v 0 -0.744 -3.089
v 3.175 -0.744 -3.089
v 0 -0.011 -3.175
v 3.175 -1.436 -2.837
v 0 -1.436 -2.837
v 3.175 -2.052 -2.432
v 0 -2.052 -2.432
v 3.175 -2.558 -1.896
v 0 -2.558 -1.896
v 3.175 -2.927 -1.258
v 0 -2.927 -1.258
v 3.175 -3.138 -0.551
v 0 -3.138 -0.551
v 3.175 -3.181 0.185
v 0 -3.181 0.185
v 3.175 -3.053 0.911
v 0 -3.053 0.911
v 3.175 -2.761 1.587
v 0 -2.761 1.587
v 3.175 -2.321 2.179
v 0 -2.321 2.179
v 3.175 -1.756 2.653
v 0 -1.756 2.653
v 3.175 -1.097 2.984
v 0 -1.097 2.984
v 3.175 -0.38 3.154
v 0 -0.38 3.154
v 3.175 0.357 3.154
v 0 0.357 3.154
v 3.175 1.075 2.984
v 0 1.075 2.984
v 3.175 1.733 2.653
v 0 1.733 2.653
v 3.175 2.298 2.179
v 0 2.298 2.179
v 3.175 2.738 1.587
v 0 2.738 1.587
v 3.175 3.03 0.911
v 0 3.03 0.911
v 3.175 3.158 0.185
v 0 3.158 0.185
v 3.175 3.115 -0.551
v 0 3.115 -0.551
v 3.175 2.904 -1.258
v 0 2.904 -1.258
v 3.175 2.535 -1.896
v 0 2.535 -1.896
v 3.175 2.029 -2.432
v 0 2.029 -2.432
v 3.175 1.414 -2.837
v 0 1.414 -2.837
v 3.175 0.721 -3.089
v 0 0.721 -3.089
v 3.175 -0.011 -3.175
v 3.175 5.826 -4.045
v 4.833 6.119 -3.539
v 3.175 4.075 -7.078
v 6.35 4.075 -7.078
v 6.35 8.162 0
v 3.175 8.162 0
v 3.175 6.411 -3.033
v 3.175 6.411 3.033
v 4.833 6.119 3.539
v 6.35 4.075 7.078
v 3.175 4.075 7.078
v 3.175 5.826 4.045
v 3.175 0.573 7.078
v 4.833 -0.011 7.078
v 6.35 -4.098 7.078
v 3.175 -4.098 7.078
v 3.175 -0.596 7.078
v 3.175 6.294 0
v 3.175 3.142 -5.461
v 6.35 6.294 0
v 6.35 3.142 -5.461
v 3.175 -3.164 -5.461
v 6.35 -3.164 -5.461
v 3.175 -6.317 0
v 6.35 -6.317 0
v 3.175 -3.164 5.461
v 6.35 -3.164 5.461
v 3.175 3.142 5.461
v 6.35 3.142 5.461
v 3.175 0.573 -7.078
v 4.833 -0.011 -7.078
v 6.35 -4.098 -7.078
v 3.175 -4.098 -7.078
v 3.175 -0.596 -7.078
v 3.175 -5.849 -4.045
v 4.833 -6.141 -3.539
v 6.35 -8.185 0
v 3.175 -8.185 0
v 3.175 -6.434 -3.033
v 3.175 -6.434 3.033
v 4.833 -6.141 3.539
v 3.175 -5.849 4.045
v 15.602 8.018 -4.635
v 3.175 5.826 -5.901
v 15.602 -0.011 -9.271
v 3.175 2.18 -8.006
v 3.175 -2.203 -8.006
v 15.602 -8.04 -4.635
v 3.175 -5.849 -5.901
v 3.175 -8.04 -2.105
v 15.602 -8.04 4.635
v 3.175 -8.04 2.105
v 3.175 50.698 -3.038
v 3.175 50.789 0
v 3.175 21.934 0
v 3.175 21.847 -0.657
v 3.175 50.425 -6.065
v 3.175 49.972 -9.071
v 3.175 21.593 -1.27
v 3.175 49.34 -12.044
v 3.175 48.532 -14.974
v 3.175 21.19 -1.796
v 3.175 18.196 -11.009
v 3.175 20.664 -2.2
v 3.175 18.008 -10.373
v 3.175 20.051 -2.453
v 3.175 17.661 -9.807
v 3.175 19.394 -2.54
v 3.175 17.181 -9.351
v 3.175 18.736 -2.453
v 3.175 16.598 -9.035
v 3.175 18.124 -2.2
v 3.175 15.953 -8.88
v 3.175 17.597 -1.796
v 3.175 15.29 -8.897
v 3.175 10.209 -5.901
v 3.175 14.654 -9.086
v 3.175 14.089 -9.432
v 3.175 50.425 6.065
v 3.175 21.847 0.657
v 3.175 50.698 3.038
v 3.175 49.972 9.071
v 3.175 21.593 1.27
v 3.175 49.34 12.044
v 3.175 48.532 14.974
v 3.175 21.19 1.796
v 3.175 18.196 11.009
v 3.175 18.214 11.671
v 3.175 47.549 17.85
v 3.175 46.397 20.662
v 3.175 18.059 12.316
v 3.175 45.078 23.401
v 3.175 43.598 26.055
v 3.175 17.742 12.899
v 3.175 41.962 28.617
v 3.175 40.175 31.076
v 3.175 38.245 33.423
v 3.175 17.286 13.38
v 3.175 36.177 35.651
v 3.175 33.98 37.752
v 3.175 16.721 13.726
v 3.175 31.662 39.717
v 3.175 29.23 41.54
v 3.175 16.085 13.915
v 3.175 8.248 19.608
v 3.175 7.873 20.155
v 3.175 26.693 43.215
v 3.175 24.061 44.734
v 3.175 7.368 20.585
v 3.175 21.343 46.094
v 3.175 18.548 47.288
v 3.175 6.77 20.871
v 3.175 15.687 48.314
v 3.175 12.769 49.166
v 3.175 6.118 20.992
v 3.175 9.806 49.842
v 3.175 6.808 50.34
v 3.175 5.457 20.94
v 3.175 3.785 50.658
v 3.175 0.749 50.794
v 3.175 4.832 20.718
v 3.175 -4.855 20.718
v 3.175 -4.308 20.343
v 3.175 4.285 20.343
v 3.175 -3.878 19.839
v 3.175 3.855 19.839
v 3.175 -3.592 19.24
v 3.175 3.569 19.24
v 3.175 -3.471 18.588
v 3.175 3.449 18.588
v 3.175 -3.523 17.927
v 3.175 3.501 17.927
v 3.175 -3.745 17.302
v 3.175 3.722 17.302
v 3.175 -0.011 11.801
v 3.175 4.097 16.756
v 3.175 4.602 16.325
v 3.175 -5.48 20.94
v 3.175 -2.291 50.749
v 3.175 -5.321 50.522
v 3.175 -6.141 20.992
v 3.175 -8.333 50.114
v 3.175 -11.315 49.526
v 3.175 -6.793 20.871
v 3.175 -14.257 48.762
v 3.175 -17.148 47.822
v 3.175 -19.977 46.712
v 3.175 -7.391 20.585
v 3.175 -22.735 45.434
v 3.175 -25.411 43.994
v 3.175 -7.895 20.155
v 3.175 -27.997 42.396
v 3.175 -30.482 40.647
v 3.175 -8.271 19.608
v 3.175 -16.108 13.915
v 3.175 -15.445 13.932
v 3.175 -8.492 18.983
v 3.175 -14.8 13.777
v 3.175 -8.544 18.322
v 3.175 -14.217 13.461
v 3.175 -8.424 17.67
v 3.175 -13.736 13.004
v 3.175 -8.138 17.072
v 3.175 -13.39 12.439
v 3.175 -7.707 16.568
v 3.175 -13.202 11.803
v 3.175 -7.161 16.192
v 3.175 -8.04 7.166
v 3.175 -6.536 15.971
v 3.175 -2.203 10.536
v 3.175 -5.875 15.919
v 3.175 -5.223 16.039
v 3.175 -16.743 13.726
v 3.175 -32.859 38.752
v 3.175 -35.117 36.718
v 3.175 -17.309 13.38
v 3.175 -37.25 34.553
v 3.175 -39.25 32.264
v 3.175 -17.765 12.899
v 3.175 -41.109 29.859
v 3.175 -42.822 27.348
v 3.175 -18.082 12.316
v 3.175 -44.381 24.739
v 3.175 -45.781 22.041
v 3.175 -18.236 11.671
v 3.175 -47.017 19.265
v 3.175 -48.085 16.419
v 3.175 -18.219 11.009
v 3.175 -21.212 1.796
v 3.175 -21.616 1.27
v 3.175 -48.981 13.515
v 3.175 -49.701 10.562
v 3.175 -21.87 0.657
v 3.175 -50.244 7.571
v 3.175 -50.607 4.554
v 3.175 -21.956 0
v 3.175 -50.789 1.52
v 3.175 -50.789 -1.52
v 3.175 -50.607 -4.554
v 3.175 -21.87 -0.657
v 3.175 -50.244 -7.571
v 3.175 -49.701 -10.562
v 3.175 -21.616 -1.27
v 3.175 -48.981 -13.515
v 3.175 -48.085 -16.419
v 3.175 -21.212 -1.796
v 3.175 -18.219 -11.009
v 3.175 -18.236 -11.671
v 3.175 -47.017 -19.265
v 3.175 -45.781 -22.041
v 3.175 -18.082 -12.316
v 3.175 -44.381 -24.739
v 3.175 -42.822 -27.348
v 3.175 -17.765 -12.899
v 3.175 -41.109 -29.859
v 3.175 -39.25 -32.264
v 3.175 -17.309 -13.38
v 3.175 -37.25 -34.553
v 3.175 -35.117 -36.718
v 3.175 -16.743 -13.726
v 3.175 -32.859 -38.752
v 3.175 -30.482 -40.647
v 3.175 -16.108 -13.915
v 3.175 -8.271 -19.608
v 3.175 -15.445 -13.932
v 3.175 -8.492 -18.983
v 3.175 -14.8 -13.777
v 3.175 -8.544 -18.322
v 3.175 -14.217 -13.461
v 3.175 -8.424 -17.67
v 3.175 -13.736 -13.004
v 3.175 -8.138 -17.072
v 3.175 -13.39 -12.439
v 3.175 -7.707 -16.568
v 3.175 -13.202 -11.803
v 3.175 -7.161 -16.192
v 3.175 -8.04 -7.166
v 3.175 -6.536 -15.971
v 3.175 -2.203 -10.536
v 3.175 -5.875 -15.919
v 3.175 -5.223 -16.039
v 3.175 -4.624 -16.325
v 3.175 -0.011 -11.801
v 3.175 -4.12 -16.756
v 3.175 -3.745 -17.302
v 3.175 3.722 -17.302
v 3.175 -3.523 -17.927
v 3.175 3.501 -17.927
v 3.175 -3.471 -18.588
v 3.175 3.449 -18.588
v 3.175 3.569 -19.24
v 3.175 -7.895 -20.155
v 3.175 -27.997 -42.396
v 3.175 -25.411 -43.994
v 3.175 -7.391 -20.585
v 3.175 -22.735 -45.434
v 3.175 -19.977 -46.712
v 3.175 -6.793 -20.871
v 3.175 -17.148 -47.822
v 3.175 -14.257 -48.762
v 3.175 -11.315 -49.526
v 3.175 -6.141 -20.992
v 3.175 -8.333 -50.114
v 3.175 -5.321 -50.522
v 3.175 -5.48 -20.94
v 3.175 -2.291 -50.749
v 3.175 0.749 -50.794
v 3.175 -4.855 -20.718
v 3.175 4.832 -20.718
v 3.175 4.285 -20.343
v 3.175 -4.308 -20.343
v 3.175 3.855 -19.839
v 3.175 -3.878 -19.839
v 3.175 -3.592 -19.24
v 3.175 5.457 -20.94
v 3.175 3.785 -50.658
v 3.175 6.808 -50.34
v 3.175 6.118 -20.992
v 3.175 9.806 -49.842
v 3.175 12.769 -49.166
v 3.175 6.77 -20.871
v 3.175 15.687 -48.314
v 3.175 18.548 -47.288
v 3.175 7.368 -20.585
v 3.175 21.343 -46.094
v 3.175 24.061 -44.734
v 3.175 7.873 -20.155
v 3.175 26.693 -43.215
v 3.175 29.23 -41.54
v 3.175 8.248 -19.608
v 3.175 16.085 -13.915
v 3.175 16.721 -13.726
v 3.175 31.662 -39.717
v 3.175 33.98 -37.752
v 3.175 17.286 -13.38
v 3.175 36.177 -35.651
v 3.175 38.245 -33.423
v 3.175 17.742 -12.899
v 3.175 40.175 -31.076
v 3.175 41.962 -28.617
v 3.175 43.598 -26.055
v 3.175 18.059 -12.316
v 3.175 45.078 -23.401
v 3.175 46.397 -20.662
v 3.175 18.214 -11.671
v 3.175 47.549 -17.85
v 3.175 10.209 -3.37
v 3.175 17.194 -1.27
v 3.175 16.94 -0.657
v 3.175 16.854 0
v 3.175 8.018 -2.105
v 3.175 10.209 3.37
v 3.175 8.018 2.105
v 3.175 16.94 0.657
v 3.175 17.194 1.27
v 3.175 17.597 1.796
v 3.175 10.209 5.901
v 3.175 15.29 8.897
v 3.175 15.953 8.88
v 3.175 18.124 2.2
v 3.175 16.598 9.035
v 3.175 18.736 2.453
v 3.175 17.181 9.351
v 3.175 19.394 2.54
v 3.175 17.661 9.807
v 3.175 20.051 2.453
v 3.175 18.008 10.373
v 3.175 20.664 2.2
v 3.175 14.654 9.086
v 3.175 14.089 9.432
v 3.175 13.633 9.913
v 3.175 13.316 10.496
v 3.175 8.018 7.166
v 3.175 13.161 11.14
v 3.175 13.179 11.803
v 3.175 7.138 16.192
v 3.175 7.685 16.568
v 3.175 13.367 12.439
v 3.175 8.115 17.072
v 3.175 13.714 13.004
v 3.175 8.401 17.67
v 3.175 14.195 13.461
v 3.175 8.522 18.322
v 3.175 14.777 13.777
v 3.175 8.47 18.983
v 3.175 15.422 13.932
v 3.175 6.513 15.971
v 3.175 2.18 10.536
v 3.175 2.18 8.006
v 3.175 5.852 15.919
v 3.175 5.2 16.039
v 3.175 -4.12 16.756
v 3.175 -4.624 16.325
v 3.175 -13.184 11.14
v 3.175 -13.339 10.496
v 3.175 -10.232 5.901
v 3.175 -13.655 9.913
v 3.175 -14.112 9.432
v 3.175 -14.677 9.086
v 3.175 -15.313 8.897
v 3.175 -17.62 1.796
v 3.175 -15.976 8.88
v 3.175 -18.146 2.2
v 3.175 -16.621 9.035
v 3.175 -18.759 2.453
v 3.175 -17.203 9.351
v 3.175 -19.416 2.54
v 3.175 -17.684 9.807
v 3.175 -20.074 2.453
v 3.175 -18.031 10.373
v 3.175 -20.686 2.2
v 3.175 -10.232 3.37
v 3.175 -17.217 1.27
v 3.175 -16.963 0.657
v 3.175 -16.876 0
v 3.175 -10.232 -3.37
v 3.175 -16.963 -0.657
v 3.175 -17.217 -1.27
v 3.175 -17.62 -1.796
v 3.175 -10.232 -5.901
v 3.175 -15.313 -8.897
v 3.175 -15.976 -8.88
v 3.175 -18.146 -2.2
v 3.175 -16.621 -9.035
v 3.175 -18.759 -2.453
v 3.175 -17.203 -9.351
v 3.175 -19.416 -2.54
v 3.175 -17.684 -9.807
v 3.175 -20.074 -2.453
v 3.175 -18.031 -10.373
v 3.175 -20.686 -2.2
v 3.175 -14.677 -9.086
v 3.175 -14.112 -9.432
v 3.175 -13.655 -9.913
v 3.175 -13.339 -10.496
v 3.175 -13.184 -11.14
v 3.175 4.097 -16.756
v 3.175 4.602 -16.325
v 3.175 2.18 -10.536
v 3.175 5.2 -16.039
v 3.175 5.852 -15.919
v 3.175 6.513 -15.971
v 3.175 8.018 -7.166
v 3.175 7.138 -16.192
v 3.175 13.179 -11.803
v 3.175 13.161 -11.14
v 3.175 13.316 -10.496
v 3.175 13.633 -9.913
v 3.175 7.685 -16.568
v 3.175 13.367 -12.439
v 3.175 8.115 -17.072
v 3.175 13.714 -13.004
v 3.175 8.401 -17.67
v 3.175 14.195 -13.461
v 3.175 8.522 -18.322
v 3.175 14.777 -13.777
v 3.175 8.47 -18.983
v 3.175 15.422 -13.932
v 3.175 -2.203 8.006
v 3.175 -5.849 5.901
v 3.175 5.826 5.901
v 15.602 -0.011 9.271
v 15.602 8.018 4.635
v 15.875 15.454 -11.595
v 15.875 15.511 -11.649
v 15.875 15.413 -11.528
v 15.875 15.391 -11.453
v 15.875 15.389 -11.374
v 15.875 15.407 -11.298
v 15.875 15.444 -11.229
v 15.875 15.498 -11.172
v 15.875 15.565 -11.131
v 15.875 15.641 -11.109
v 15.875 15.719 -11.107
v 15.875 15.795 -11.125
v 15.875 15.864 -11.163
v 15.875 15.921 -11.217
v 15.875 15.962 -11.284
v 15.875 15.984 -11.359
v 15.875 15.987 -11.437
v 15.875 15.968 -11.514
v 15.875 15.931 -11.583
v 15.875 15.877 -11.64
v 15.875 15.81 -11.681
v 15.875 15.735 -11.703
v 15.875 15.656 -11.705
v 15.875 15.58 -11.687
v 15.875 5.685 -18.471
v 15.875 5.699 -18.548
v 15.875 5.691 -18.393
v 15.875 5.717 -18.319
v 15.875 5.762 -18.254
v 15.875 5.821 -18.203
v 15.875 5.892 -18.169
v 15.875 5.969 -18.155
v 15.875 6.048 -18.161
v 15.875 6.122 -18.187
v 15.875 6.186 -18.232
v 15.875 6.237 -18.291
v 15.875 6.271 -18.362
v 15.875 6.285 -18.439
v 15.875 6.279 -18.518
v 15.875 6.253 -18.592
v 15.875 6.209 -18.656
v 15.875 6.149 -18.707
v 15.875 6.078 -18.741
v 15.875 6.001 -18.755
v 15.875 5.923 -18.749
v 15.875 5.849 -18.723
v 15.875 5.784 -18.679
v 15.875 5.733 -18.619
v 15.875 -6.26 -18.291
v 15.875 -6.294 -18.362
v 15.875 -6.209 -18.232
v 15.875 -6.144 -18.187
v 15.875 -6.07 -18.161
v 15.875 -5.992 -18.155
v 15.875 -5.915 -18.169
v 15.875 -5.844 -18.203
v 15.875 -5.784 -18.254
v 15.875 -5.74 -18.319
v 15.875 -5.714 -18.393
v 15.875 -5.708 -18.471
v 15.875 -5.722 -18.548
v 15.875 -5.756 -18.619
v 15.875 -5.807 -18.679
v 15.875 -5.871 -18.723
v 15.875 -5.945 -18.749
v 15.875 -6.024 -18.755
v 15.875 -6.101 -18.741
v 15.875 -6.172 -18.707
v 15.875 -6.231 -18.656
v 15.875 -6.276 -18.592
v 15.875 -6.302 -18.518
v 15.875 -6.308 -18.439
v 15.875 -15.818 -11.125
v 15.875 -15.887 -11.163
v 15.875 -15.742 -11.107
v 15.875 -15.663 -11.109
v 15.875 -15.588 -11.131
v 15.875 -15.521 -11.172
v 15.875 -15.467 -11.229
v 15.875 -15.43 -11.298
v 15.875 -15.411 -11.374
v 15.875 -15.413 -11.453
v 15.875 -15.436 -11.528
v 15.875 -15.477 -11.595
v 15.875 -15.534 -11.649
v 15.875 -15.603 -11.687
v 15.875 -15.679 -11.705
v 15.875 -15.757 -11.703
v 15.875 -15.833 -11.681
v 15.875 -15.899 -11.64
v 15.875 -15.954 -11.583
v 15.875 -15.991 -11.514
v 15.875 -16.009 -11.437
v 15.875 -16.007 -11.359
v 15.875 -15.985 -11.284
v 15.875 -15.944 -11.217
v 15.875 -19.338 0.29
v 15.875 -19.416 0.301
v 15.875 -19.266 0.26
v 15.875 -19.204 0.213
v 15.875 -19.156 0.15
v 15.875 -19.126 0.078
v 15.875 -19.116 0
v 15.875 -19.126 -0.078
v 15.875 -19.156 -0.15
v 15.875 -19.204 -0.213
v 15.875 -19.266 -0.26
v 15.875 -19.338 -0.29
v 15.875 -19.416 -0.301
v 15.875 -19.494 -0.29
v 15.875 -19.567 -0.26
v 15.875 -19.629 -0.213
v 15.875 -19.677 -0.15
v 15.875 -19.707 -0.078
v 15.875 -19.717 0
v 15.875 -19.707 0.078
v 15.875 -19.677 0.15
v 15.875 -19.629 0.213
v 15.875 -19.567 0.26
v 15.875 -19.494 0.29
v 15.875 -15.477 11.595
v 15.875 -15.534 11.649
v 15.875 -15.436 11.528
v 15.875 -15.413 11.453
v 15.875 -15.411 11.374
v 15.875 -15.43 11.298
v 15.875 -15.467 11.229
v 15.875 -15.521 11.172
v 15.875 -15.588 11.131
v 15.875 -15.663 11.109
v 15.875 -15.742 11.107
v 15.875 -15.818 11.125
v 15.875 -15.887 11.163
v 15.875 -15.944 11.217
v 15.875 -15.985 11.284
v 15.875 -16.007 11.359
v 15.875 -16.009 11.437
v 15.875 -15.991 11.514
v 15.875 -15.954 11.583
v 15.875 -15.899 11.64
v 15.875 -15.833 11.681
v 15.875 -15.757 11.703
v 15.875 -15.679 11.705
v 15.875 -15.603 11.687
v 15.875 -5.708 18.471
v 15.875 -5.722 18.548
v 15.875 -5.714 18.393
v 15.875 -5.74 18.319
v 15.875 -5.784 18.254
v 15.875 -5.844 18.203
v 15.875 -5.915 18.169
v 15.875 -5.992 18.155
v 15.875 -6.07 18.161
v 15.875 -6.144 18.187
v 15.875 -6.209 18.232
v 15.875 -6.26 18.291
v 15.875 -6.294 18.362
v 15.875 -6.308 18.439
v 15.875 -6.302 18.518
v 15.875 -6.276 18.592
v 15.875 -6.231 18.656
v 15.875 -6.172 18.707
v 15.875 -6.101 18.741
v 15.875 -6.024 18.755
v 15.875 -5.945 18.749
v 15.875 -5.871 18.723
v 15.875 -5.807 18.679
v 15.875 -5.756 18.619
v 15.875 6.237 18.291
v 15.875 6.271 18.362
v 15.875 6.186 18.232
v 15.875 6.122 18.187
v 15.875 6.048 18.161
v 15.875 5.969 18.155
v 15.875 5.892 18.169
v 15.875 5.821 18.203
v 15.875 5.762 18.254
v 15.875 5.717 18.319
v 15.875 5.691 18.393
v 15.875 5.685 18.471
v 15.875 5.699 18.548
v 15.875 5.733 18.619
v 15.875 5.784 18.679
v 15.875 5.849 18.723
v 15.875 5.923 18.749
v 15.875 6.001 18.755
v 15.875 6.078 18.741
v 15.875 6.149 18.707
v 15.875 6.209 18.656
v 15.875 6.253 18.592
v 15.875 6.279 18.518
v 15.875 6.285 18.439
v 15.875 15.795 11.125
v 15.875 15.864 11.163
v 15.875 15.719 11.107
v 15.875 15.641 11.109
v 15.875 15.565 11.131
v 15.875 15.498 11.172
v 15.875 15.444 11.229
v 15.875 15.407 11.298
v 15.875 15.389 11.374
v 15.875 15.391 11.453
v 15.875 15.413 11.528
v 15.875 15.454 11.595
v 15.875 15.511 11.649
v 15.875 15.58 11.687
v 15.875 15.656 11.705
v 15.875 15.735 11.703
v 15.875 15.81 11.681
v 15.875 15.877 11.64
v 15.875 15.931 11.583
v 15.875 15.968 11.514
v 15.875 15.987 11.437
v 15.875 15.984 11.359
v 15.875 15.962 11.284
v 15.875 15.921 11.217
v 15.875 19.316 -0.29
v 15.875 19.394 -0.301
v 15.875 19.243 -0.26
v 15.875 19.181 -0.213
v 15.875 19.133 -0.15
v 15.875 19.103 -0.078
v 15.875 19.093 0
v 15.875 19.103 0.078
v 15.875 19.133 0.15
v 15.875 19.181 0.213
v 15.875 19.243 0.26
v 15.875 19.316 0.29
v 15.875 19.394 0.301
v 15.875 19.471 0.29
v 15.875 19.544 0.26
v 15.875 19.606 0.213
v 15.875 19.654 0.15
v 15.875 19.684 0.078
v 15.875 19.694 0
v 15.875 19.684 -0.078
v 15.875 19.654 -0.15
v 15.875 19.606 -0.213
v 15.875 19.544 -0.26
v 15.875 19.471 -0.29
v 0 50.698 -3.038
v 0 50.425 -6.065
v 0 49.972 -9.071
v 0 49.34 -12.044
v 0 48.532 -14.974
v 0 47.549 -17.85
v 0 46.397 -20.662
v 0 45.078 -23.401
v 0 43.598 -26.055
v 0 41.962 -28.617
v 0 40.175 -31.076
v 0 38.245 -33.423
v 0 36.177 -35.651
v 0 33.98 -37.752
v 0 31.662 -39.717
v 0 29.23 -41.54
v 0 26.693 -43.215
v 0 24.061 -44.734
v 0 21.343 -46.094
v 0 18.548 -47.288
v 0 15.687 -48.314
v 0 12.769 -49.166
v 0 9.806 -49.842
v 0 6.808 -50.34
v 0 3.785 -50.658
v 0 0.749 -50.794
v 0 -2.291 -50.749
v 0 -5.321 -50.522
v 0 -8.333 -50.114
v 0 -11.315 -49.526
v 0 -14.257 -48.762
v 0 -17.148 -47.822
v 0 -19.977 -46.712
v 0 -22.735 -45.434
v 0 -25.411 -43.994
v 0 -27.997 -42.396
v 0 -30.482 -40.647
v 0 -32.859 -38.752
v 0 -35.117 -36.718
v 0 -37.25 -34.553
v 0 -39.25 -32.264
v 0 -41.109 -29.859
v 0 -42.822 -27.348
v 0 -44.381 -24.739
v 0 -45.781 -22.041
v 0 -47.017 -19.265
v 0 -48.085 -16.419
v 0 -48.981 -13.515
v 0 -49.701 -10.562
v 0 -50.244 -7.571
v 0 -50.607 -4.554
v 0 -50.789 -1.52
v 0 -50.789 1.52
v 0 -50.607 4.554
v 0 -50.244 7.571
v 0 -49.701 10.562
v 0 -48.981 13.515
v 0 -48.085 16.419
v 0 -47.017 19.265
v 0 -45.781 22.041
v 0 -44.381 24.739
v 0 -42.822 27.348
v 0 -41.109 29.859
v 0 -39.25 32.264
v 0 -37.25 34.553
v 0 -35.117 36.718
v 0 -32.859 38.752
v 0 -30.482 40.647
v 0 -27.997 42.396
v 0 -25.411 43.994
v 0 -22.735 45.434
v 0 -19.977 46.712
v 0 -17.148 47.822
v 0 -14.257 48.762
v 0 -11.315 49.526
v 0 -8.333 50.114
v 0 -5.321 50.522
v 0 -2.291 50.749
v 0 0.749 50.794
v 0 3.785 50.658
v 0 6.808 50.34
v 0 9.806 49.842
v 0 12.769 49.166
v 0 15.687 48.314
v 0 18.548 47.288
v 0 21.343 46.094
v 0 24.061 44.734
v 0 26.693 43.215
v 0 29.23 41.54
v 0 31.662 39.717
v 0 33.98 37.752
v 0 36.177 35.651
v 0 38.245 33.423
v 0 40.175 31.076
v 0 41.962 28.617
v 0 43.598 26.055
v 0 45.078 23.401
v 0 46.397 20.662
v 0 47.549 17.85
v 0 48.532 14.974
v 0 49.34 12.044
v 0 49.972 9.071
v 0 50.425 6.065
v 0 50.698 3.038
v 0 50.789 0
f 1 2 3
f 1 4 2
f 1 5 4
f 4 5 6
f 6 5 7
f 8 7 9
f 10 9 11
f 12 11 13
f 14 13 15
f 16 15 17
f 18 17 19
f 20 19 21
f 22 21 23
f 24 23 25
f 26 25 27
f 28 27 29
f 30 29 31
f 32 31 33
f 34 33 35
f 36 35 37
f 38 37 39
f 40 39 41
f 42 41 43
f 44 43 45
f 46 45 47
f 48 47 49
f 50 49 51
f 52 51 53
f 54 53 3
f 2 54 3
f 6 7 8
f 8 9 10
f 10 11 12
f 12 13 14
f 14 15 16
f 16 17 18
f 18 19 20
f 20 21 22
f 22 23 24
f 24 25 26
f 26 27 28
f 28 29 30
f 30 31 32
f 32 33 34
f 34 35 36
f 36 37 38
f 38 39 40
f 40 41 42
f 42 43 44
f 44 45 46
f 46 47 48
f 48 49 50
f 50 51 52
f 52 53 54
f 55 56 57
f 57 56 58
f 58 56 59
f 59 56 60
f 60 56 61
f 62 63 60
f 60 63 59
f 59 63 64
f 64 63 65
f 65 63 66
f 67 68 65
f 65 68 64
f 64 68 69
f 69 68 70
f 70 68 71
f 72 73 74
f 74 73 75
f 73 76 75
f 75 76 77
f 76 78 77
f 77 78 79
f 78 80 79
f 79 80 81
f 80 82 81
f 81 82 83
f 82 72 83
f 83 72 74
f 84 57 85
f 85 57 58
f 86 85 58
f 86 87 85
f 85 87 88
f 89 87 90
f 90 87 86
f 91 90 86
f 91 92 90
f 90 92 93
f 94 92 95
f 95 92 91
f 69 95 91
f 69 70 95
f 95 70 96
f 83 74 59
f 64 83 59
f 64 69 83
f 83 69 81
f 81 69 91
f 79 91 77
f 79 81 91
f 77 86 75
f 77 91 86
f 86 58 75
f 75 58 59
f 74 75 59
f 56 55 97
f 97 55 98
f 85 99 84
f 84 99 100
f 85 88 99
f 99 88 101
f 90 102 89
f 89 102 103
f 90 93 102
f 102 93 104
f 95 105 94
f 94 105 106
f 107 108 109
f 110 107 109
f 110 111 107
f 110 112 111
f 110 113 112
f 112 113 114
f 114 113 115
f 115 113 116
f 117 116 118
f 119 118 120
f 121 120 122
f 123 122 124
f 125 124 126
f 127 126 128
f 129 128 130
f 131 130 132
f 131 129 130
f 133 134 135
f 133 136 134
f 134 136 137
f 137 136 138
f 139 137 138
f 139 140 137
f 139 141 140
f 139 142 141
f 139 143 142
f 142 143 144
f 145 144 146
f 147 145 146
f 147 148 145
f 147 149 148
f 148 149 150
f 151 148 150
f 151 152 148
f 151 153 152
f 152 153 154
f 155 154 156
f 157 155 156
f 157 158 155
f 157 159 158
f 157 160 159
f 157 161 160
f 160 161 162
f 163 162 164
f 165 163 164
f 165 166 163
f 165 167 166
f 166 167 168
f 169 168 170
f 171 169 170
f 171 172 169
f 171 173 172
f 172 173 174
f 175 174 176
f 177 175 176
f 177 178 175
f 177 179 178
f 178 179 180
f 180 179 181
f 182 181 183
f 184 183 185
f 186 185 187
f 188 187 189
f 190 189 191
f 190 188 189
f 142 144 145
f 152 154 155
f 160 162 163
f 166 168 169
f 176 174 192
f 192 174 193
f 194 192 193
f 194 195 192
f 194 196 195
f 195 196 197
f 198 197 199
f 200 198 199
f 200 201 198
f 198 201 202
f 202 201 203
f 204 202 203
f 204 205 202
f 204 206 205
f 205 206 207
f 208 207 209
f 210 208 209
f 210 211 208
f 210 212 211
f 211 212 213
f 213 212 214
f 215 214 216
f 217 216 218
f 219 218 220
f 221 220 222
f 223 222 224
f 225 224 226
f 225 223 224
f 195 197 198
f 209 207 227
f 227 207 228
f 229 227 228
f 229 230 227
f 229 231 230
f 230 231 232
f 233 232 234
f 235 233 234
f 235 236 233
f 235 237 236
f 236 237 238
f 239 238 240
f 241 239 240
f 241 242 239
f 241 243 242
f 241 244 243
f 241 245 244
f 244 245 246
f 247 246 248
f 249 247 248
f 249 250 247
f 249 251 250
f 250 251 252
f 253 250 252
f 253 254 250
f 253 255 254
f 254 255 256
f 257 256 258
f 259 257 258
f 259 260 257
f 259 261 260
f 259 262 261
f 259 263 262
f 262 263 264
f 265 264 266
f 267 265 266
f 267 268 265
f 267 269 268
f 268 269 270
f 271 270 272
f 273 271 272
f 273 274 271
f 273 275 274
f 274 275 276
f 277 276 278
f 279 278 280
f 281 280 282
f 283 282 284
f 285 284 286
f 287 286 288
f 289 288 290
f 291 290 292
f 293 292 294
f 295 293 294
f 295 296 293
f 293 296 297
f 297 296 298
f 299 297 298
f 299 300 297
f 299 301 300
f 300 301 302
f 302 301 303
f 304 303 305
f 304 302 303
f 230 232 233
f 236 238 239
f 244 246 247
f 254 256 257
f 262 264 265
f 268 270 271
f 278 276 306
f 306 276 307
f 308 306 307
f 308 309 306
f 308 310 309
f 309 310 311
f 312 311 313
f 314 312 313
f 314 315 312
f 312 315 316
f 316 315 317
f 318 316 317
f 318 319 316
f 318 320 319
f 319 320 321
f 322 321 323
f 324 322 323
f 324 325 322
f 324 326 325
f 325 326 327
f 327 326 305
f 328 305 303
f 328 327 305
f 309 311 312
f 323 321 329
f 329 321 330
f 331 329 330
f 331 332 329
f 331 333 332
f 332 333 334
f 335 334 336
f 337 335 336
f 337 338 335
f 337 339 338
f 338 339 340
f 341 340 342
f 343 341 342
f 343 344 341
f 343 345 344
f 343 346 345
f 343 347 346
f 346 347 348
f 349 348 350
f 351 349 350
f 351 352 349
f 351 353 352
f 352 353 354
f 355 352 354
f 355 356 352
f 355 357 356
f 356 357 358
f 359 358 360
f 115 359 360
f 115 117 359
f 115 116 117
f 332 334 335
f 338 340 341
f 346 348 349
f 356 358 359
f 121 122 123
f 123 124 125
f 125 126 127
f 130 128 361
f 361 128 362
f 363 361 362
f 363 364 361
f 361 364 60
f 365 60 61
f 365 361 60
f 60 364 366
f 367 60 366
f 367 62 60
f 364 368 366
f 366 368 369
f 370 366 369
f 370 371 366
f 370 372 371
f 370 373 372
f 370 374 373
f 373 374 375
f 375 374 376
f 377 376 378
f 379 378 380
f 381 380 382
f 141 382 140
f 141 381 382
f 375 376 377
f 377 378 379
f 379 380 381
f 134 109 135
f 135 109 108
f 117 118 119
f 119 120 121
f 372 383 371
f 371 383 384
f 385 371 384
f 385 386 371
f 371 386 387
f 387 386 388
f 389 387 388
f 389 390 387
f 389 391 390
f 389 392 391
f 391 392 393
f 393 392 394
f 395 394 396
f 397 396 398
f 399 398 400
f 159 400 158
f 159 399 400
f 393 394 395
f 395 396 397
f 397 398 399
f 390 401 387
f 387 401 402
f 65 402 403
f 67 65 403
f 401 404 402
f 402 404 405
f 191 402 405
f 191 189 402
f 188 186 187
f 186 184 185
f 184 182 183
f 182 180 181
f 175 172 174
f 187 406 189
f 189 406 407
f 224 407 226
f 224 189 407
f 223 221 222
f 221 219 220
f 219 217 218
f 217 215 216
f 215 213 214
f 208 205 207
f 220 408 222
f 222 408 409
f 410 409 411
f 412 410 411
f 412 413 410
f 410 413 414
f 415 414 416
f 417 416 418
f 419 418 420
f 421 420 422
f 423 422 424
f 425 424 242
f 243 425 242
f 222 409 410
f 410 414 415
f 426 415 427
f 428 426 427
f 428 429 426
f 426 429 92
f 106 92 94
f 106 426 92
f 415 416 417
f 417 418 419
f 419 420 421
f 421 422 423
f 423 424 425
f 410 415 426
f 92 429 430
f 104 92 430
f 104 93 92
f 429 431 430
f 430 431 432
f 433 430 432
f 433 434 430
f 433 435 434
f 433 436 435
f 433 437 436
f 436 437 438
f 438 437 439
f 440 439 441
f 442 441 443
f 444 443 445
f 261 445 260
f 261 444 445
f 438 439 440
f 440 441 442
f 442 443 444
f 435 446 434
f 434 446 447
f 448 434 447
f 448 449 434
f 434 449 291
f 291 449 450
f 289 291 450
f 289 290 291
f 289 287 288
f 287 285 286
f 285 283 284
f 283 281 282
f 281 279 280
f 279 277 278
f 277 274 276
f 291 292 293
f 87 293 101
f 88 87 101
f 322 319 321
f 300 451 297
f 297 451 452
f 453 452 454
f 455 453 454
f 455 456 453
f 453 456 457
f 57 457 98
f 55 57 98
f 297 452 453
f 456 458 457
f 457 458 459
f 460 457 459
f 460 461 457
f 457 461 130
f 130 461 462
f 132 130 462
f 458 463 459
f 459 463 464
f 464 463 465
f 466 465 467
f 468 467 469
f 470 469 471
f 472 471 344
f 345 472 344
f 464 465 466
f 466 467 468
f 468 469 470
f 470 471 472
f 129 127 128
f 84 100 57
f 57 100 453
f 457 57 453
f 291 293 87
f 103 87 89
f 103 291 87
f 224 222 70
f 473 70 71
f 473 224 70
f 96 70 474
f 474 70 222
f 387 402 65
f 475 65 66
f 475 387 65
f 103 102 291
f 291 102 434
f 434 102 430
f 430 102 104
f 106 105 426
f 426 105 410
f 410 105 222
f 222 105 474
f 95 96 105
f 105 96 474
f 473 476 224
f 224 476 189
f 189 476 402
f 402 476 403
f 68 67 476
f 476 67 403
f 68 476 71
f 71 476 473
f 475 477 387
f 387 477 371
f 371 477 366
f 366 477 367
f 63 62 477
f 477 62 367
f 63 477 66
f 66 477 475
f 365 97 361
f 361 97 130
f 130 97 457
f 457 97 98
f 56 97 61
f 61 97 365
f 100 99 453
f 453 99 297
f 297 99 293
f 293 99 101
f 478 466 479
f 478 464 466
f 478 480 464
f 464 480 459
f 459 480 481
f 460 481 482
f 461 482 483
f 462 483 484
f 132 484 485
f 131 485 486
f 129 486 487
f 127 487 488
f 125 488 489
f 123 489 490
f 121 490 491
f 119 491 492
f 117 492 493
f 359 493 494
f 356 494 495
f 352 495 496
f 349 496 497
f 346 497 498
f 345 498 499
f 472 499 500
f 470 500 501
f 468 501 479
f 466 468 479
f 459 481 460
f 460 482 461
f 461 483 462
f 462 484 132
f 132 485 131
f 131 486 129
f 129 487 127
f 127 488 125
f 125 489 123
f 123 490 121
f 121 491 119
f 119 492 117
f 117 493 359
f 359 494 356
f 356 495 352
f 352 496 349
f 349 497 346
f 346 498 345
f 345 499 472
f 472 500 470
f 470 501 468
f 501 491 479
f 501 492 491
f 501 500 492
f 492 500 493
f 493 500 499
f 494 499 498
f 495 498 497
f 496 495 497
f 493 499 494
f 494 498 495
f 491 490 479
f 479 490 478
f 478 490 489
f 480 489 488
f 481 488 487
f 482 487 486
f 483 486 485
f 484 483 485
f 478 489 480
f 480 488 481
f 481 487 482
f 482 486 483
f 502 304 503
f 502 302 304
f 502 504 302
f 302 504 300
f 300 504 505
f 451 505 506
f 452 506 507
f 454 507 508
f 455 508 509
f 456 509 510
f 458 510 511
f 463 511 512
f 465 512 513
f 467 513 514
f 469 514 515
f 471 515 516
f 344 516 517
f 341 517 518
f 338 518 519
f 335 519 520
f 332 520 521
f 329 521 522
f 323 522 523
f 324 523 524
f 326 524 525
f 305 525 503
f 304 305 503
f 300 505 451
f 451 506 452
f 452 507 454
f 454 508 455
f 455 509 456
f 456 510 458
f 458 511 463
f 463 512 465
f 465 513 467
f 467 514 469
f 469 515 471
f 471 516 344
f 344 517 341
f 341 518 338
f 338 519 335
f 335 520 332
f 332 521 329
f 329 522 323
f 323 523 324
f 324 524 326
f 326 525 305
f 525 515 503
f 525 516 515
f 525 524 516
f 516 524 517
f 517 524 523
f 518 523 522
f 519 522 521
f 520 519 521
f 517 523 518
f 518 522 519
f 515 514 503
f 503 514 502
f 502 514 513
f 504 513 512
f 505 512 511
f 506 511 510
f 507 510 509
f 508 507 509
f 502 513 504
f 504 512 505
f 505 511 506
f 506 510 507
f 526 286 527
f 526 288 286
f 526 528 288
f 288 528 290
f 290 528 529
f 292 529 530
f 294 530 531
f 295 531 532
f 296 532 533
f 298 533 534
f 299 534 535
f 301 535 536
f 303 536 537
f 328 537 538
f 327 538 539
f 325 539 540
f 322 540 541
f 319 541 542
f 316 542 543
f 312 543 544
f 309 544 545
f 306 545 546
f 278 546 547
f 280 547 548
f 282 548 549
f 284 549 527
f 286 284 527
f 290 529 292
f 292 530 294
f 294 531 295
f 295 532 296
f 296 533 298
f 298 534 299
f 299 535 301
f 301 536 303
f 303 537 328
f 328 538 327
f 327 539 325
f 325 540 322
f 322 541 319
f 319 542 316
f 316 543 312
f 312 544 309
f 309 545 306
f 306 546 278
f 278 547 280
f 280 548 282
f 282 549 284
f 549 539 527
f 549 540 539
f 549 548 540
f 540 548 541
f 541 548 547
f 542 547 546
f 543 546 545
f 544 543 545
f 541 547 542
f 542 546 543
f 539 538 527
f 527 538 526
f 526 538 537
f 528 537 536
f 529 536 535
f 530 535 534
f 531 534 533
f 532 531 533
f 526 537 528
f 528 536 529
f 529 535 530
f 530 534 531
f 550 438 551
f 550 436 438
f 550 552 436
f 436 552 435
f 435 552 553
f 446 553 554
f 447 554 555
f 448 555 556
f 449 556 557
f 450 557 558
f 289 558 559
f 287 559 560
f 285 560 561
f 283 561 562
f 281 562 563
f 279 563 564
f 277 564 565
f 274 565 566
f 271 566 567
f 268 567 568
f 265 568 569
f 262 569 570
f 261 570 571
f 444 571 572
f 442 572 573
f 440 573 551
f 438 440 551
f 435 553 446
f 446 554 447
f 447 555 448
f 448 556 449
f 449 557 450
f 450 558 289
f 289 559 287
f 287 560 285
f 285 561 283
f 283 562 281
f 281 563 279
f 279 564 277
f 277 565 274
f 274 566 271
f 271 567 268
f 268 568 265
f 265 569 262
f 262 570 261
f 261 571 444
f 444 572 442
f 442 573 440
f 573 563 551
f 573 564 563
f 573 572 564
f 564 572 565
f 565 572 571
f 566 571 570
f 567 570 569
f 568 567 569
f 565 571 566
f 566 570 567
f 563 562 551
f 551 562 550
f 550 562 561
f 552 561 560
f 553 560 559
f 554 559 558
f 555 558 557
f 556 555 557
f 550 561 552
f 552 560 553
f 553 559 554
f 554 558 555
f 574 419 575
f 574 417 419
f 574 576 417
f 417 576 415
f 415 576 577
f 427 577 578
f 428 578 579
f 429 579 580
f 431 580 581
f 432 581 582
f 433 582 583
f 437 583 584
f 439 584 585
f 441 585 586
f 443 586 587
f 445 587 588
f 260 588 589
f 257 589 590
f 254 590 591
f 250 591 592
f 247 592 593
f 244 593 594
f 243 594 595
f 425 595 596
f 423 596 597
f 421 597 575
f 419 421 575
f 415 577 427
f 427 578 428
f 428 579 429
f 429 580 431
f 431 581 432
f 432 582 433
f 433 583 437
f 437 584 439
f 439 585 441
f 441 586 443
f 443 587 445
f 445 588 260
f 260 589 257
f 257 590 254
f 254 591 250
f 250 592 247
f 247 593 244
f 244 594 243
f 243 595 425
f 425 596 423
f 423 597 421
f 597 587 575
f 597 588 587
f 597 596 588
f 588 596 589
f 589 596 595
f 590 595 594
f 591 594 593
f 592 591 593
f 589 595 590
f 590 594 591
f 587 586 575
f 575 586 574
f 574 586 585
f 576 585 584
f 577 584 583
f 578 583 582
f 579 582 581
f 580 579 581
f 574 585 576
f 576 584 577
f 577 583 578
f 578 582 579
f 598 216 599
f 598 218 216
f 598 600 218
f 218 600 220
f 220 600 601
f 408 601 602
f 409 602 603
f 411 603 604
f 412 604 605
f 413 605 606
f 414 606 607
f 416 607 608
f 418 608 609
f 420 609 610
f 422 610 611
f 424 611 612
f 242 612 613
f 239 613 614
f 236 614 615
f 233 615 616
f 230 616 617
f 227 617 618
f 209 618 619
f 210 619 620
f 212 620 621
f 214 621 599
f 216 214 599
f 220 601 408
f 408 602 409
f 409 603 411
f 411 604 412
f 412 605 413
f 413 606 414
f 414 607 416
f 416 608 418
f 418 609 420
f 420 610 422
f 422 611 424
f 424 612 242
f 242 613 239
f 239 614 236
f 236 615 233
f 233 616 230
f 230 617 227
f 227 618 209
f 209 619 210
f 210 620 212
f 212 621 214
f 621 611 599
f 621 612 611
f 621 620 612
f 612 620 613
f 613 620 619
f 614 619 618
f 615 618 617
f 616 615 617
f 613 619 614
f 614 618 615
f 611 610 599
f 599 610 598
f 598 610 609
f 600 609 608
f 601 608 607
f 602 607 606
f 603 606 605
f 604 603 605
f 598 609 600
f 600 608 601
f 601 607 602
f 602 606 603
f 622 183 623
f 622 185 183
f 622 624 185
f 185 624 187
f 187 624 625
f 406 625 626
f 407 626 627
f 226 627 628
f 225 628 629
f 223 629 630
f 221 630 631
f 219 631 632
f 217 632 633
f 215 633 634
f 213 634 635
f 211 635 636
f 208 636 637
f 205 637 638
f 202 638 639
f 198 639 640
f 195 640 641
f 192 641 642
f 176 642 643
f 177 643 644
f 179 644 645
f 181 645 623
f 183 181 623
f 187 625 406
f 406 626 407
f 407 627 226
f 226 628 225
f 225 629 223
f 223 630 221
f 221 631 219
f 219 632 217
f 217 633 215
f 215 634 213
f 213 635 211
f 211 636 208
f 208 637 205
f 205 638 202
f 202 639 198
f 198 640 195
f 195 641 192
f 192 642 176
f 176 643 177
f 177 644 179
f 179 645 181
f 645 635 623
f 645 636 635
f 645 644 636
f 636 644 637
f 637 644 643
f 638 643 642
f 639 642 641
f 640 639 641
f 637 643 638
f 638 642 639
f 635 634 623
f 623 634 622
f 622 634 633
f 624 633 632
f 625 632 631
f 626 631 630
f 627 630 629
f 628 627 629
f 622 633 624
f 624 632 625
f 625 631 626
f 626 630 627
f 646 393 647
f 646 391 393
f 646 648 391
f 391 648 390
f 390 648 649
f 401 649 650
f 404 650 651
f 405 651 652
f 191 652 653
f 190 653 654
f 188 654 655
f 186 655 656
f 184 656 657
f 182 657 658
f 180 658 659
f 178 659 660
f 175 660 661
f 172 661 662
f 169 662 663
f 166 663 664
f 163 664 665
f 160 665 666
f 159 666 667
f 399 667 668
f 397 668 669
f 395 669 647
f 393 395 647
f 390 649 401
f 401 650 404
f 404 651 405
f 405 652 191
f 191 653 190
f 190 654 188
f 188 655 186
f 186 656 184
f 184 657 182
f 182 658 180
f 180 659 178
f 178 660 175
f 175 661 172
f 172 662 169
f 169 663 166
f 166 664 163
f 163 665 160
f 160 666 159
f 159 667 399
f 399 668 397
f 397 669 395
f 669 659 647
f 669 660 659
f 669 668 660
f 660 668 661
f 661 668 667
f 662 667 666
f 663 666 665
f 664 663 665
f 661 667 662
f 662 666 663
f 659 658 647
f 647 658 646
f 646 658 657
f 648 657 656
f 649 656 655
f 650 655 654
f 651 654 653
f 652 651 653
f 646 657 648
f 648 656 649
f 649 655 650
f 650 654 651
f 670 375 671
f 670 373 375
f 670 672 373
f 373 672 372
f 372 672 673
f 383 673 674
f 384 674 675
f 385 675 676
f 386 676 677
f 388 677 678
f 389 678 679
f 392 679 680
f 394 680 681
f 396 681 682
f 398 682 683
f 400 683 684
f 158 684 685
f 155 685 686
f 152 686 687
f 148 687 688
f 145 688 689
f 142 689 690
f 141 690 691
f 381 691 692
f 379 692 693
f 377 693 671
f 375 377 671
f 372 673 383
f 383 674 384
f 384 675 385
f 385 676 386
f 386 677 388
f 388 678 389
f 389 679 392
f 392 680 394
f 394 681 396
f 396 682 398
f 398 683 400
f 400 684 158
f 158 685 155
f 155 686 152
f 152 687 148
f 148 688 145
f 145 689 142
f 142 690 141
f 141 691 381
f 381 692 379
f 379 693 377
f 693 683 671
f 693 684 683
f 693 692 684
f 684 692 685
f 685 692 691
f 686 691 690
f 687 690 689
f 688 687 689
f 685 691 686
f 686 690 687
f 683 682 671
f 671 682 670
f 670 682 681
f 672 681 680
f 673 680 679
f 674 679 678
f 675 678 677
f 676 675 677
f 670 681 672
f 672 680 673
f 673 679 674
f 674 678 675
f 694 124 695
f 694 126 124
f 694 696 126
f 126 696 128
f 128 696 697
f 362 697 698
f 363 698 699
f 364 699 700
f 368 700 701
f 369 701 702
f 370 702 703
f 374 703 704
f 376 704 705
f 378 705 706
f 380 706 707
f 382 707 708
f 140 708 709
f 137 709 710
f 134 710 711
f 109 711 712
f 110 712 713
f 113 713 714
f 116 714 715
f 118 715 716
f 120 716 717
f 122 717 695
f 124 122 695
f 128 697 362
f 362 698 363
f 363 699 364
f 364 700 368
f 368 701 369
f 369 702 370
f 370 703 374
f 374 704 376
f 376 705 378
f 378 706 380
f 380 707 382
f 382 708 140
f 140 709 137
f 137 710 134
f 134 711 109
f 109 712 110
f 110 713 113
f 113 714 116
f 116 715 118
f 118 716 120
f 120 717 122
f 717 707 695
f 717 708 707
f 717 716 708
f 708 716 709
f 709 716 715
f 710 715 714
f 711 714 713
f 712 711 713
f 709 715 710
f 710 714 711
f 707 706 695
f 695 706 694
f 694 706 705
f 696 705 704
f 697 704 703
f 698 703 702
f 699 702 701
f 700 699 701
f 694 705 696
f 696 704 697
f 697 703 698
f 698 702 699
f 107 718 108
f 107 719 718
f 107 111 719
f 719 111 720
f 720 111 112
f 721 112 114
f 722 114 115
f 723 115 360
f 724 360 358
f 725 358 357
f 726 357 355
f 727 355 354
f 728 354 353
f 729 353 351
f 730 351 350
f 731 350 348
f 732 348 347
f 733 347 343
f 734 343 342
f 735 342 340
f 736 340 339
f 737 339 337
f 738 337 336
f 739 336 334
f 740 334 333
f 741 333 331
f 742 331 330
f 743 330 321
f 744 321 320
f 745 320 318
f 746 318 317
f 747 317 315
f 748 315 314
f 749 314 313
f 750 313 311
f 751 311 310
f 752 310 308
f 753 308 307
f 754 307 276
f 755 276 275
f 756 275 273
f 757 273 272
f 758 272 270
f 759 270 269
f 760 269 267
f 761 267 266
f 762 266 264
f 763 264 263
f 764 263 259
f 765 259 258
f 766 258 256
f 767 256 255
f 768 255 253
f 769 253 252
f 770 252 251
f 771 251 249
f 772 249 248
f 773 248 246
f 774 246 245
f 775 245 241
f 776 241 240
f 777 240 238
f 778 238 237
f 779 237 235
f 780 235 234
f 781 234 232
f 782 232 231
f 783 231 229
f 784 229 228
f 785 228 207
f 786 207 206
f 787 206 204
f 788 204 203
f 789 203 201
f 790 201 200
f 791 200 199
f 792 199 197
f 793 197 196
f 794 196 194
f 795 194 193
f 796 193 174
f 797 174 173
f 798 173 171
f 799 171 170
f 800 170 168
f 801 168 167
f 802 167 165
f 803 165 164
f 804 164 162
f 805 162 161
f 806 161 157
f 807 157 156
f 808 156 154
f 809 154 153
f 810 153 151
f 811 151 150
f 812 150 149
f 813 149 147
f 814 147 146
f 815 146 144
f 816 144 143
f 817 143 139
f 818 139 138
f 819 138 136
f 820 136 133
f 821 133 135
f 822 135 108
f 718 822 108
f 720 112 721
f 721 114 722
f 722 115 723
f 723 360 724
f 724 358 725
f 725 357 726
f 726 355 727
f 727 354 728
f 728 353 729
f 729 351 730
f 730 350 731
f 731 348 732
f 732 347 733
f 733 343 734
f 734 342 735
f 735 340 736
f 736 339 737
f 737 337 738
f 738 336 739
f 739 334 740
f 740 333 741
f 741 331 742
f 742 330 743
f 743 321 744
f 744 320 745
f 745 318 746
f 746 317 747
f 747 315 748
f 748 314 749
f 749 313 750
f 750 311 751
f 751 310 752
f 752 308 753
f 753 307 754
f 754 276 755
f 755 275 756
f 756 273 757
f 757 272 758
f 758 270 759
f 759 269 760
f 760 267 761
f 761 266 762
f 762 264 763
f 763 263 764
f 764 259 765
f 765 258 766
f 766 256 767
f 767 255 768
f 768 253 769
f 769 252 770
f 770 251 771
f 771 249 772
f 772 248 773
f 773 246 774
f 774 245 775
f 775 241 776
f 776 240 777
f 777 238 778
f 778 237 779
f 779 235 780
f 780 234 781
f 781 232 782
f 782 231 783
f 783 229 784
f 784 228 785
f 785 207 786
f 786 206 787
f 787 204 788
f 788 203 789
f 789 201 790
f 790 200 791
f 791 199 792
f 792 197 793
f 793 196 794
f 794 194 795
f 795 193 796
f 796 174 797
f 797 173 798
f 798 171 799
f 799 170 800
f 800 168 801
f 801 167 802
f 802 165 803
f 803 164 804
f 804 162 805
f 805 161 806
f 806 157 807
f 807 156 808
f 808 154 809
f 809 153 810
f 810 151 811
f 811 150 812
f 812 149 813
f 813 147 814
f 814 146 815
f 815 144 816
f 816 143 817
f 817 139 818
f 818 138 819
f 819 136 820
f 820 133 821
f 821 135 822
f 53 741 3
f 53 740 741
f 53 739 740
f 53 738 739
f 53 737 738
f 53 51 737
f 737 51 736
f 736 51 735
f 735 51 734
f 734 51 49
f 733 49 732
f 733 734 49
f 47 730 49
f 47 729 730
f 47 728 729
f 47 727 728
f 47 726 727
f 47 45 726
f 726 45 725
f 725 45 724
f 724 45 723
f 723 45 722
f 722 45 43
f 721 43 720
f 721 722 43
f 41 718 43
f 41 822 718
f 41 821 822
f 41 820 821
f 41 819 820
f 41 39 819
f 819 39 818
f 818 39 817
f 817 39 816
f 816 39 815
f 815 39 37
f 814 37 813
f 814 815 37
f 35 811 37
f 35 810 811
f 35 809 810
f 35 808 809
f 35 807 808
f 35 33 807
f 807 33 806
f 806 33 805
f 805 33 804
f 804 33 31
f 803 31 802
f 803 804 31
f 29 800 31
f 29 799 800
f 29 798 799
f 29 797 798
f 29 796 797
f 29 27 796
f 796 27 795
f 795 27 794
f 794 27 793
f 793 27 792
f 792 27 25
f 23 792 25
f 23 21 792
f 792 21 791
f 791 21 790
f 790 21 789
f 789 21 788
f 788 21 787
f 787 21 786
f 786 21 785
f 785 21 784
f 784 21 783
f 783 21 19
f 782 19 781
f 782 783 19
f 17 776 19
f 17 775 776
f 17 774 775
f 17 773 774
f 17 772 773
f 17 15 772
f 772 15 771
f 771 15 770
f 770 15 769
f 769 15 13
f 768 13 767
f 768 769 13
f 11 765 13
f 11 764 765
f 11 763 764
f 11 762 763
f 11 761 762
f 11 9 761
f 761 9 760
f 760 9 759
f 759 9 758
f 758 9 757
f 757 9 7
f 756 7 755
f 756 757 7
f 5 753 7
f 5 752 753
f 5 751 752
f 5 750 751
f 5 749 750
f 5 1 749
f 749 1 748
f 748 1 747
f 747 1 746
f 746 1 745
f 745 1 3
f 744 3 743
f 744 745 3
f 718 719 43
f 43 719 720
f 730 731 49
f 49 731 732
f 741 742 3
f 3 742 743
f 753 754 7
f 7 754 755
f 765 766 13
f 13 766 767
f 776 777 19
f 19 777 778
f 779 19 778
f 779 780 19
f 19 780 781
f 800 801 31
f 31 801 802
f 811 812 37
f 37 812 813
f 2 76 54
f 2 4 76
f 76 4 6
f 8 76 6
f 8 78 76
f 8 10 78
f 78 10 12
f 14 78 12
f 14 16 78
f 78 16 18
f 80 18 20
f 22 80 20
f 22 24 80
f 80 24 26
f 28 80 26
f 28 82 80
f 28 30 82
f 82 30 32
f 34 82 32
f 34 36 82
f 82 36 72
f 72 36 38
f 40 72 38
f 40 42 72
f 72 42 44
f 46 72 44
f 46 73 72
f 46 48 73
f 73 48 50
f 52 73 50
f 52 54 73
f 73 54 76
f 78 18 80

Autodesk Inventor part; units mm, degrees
ref_plane "YZ Plane" through (0, 0, 0) normal (1, 0, 0) x (0, 1, 0)
ref_plane "XZ Plane" through (0, 0, 0) normal (0, 1, 0) x (-1, 0, 0)
ref_plane "XY Plane" through (0, 0, 0) normal (0, 0, 1) x (1, 0, 0)
sketch "Sketch1" plane through (0, 0, 0) normal (1, 0, 0) x (0, 1, 0)
  circle A0 centre (0, 0) radius 50.8
  dimension "d0" = 101.6
extrude "Extrusion1" add sketch "Sketch1" along normal blind 3.175
sketch "Sketch2" plane through (3.175, 0, 0) normal (1, 0, 0) x (0, 0, -1)
  circle A0 centre (0, 19.4049) radius 2.54
  point P0 (0, 0)
  dimension "d3" = 5.08
extrude "Extrusion2" add sketch "Sketch2" along normal blind 12.7 draft -10
pattern_circular "Circular Pattern1" count 10 over 360 about axis through (0, 0, 0) along (1, 0, 0) of "Extrusion2"
sketch "Sketch3" plane through (3.175, 0, 0) normal (1, 0, 0) x (0, 0, -1)
  line L0 (6.7407, 0) -> (8.0059, 2.1913)
  line L1 (8.0059, 2.1913) -> (10.5361, 2.1913)
  line L2 (10.5361, 2.1913) -> (11.8012, 0)
  line L3 (11.8012, 0) -> (10.5361, -2.1913)
  line L4 (10.5361, -2.1913) -> (8.0059, -2.1913)
  line L5 (8.0059, -2.1913) -> (6.7407, 0)
  point P0 (0, 0)
  point P1 (9.271, 0)
extrude "Extrusion3" add sketch "Sketch3" along normal blind 12.7 draft -10
pattern_circular "Circular Pattern2" count 6 over 360 about axis through (0, 0, 0) along (1, 0, 0) of "Extrusion3"
sketch "Sketch4" plane through (3.175, 0, 0) normal (1, 0, 0) x (0, 0, -1)
  line L0 (-5.461, 3.1529) -> (0, 6.3058)
  line L1 (0, 6.3058) -> (5.461, 3.1529)
  line L2 (5.461, 3.1529) -> (5.461, -3.1529)
  line L3 (5.461, -3.1529) -> (0, -6.3058)
  line L4 (0, -6.3058) -> (-5.461, -3.1529)
  line L5 (-5.461, -3.1529) -> (-5.461, 3.1529)
  line L6 (-7.0782, -4.0866) -> (0, -8.1732)
  line L7 (0, -8.1732) -> (7.0782, -4.0866)
  line L8 (7.0782, -4.0866) -> (7.0782, 4.0866)
  line L9 (7.0782, 4.0866) -> (0, 8.1732)
  line L10 (0, 8.1732) -> (-7.0782, 4.0866)
  line L11 (-7.0782, 4.0866) -> (-7.0782, -4.0866)
  point P0 (0, 0)
  point P1 (0, 0)
  dimension "d14" = 10.922
extrude "Extrusion4" add sketch "Sketch4" along normal blind 3.175
sketch "Sketch5" plane through (3.175, 0, 0) normal (1, 0, 0) x (0, 0, -1)
  circle A0 centre (0, 0) radius 3.175
  dimension "d17" = 6.35
extrude "Extrusion5" cut sketch "Sketch5" against normal through all
properties part number "foam gripper"
